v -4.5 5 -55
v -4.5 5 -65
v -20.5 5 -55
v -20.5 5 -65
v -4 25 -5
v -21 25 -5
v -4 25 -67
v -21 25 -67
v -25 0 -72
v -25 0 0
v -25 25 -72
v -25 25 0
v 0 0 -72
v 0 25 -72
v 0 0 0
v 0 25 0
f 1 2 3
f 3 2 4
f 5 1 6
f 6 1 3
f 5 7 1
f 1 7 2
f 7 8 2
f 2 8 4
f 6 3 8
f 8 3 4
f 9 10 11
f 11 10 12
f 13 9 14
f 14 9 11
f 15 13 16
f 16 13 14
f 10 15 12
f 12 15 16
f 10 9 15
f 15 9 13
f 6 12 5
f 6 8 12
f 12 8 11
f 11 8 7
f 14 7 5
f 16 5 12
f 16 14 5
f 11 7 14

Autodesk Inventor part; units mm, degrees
ref_plane "YZ Plane" through (0, 0, 0) normal (1, 0, 0) x (0, 1, 0)
ref_plane "XZ Plane" through (0, 0, 0) normal (0, 1, 0) x (-1, 0, 0)
ref_plane "XY Plane" through (0, 0, 0) normal (0, 0, 1) x (1, 0, 0)
sketch "Sketch1" plane through (0, 0, 0) normal (0, 1, 0) x (-1, 0, 0)
  line L0 (0, 0) -> (25, 0)
  line L1 (25, 0) -> (25, -72)
  line L2 (25, -72) -> (0, -72)
  line L3 (0, -72) -> (0, 0)
  dimension "d0" = 72
  dimension "d1" = 25
extrude "Extrusion1" add sketch "Sketch1" along normal blind 25
sketch "Sketch2" plane through (0, 25, 0) normal (0, 1, 0) x (1, 0, 0)
  line L0 (-21, 5) -> (-4, 5)
  line L1 (-4, 5) -> (-4, 67)
  line L2 (-4, 67) -> (-21, 67)
  line L3 (-21, 67) -> (-21, 5)
  line L4 (-25, 72) -> (-25, 0) projected
  line L5 (0, 72) -> (-25, 72) projected
  point P0 (0, 0)
  dimension "d4" = 62
  dimension "d5" = 17
  dimension "d6" = 4
  dimension "d7" = 5
ref_plane "Work Plane1" through (0, 5, 0) normal (0, -1, 0) x (1, 0, 0)
sketch "Sketch3" plane through (0, 5, 0) normal (0, -1, 0) x (1, 0, 0)
  line L0 (-4.5, -55) -> (-20.5, -55)
  line L1 (-20.5, -55) -> (-20.5, -65)
  line L2 (-20.5, -65) -> (-4.5, -65)
  line L3 (-4.5, -65) -> (-4.5, -55)
  line L4 (0, -72) -> (-25, -72) projected
  line L5 (0, 0) -> (0, -72) projected
  dimension "d9" = 10
  dimension "d10" = 16
  dimension "d11" = 7
  dimension "d12" = 4.5
loft "Loft1" cut profiles "Sketch2", "Sketch3"
properties part number "Tapered Mould"
